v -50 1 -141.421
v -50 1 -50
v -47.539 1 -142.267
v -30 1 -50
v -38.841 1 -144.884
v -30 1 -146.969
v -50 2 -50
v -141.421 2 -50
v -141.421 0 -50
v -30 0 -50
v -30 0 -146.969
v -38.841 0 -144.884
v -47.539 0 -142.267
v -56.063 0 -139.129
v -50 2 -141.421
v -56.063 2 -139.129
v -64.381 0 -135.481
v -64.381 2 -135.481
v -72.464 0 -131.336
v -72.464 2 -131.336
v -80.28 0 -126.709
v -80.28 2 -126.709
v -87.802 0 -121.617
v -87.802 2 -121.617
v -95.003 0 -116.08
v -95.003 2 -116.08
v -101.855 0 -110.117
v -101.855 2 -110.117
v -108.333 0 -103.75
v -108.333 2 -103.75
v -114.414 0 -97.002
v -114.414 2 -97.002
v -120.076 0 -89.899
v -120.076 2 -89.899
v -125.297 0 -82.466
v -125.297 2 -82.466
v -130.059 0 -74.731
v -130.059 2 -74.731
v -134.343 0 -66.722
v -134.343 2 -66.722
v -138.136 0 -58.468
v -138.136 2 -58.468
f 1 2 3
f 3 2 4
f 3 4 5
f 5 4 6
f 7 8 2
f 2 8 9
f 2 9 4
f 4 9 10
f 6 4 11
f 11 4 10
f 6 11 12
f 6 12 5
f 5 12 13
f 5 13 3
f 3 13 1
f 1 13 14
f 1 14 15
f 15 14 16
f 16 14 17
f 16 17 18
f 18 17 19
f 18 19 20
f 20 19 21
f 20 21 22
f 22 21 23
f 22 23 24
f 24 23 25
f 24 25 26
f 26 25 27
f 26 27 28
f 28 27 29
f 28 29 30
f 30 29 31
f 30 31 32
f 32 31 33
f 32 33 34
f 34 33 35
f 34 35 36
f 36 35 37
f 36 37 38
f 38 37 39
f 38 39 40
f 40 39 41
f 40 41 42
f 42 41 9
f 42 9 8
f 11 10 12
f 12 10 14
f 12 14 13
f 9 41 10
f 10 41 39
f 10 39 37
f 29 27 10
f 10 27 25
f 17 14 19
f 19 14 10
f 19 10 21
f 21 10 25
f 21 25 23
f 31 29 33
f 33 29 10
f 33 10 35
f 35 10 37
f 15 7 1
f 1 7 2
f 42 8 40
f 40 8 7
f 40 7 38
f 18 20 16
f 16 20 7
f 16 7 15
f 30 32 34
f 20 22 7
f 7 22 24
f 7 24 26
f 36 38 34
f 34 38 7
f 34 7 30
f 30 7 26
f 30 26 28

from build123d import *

# Parameters (mm, degrees)
BOSS_EXTRUDE1_DEPTH = 1
BOSS_EXTRUDE2_DEPTH = 1
CUT_EXTRUDE1_DEPTH  = 208.84850252


with BuildPart() as part:
    # Sketch1 → Boss-Extrude1 (new body)
    with BuildSketch(Plane(origin=(0, 0, 0), x_dir=(1, 0, 0), z_dir=(0, 1, 0))):
        with BuildLine():
            Line((-50, 50), (-30, 50))
            Line((-30, 50), (-30, 146.969384567))
            ThreePointArc((-30, 146.969384567), (-106.066017178, 106.066017178), (-146.969384567, 30))
            Line((-146.969384567, 30), (-50, 30))
            Line((-50, 30), (-50, 50))
        make_face()
    extrude(amount=BOSS_EXTRUDE1_DEPTH)

    # Sketch2 → Boss-Extrude2 (add)
    with BuildSketch(Plane(origin=(0, 1, 0), x_dir=(-1, 0, 0), z_dir=(0, 1, 0))):
        with BuildLine():
            Line((50, -50), (141.421356237, -50))
            ThreePointArc((141.421356237, -50), (106.066017178, -106.066017178), (50, -141.421356237))
            Line((50, -141.421356237), (50, -50))
        make_face()
    extrude(amount=BOSS_EXTRUDE2_DEPTH)

    # Sketch3 → Cut-Extrude1 (cut, through all)
    with BuildSketch(Plane(origin=(0, 1, 0), x_dir=(1, 0, 0), z_dir=(0, 1, 0))):
        with BuildLine():
            Line((-50, 50), (-141.421356237, 50))
            ThreePointArc((-141.421356237, 50), (-144.541706249, 40.096074055), (-146.969384567, 30))
            Line((-146.969384567, 30), (-50, 30))
            Line((-50, 30), (-50, 50))
        make_face()
    extrude(amount=-CUT_EXTRUDE1_DEPTH, mode=Mode.SUBTRACT)


solid = part.part
